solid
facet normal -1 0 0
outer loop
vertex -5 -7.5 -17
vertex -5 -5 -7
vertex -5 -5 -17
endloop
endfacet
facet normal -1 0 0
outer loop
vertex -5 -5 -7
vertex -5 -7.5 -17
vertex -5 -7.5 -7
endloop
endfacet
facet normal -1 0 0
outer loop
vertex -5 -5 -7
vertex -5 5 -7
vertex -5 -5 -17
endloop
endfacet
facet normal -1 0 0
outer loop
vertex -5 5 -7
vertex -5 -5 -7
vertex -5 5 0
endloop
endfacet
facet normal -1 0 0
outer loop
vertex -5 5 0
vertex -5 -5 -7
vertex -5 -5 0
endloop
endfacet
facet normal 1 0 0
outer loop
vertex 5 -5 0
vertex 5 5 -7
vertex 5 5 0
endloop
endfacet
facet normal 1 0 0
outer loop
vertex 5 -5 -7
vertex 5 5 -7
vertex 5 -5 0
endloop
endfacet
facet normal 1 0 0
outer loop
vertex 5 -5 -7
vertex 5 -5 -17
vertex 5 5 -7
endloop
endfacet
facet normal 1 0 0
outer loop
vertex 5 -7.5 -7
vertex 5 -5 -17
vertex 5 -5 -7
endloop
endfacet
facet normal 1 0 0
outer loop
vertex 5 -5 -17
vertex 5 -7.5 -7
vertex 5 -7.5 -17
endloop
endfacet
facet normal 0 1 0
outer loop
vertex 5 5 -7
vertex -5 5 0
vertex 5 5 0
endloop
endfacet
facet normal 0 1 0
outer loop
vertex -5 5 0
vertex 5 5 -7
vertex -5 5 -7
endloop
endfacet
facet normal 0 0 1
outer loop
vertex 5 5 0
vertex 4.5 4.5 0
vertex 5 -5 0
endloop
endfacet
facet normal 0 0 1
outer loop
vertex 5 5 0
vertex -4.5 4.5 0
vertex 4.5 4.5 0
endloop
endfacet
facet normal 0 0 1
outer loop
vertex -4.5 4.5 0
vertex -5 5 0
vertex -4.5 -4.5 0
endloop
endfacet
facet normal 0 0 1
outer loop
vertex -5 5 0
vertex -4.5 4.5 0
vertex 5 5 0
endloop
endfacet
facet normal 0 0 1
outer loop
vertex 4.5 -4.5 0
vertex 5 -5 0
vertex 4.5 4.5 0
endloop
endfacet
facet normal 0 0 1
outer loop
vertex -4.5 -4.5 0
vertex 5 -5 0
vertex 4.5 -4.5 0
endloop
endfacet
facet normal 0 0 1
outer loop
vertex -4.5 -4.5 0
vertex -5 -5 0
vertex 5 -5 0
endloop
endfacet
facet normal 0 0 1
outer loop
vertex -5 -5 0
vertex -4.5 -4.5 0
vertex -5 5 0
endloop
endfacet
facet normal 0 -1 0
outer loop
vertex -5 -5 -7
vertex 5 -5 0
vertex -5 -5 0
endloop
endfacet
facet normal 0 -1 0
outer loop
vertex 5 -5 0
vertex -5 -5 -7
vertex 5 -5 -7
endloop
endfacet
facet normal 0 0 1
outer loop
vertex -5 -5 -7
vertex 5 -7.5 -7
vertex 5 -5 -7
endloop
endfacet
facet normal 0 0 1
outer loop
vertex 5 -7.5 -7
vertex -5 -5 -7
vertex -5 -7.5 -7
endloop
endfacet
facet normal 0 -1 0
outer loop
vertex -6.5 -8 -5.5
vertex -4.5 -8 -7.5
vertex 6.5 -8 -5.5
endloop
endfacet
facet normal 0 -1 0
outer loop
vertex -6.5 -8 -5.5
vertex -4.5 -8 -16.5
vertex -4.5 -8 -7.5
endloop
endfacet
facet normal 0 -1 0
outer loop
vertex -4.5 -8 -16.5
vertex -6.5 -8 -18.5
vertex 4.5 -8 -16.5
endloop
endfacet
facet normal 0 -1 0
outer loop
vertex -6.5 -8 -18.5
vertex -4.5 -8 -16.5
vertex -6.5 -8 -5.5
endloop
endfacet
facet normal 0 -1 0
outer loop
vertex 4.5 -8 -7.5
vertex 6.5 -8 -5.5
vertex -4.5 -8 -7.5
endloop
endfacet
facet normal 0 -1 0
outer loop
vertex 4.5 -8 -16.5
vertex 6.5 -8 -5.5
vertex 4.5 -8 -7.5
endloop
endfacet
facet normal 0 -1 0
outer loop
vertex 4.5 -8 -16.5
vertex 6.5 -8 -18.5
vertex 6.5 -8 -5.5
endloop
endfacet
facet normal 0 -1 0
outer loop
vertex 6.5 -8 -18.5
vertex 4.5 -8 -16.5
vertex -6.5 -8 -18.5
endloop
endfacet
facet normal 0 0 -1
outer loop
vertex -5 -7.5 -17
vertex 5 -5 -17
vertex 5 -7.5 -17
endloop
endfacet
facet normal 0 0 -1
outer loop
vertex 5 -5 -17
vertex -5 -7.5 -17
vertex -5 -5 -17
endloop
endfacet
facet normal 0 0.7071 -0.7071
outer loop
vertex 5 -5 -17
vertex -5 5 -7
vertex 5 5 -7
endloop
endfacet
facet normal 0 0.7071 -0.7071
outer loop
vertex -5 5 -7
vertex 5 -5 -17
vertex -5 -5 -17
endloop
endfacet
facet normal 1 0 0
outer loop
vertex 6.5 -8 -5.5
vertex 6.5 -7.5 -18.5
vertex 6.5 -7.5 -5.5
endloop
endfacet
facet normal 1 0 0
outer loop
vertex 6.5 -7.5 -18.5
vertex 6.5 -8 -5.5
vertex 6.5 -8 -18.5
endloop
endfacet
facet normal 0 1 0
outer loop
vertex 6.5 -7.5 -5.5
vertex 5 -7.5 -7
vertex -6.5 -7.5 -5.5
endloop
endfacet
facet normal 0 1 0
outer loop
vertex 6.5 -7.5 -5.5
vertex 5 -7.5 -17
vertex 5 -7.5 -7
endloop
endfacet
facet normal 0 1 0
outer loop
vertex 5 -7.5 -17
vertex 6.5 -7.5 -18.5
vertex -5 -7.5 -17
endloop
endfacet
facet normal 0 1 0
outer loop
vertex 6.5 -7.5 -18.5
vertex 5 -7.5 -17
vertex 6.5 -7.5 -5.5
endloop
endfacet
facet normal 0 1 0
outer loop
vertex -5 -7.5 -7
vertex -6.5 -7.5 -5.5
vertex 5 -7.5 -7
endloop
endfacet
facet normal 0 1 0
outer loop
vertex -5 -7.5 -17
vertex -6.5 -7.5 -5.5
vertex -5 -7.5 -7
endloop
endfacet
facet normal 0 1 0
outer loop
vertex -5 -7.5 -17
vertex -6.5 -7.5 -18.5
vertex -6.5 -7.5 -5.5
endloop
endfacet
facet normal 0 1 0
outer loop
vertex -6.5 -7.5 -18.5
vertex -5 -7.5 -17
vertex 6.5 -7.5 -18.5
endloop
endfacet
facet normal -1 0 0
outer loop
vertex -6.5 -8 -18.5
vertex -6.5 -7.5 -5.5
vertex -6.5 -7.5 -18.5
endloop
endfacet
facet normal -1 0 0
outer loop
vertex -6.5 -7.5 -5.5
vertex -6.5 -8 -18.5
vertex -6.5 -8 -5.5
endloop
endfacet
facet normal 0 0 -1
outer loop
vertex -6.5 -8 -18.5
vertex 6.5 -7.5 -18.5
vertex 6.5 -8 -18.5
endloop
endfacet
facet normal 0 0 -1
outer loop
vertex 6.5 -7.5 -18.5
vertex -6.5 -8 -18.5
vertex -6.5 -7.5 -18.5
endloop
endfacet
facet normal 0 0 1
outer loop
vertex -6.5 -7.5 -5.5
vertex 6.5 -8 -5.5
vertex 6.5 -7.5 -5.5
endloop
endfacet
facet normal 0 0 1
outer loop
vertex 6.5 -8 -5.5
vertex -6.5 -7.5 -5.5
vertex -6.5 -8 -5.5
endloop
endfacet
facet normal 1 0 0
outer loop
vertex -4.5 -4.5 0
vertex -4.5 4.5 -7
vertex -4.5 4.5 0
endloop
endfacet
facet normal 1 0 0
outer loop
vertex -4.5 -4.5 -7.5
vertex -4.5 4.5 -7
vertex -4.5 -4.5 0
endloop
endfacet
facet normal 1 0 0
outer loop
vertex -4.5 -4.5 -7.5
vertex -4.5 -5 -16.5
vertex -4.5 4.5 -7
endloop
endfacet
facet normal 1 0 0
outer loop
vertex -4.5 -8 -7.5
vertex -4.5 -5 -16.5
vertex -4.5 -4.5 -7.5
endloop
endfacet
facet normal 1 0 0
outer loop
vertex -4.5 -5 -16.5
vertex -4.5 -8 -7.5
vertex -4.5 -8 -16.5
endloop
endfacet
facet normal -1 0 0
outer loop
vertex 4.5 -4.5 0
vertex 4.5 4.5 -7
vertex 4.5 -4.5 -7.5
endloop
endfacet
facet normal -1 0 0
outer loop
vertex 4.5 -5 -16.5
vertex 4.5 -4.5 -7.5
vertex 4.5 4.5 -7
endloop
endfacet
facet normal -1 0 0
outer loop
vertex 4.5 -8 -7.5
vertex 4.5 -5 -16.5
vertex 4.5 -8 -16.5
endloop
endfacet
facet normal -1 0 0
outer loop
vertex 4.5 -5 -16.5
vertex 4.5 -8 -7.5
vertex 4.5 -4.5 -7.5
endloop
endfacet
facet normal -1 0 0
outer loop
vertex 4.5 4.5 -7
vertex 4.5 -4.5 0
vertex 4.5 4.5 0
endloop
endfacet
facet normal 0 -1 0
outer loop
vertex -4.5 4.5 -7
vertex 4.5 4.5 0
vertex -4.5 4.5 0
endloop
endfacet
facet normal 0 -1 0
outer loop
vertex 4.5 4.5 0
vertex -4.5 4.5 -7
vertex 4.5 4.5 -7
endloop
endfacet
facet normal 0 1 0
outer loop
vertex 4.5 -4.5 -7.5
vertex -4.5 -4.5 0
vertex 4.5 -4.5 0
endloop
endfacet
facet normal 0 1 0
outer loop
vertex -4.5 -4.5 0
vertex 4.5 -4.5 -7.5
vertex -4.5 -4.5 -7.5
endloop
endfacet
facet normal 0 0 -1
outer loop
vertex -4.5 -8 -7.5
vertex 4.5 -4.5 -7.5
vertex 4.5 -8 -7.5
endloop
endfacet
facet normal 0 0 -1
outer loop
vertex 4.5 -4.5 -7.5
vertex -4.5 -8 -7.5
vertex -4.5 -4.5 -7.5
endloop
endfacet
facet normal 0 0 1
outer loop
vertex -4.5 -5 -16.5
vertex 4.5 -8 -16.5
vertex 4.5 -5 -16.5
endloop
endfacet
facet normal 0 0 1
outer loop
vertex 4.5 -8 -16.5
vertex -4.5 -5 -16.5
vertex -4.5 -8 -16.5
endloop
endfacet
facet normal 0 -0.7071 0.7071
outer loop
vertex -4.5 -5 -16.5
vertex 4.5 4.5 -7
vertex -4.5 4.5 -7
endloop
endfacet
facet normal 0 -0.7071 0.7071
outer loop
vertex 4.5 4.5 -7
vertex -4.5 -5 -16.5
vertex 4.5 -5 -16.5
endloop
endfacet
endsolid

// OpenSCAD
diameter=10;
horizontal_leg=3;
vertical_leg=7;
wall_thickness=0.5;
flange=3;

module half_periscope(
    d=diameter,
    h=horizontal_leg,
    v=vertical_leg,
    w=wall_thickness,
    f=flange   
) {

  translate([-d/2,-(h+d/2),-d-v])
    rotate([90,0,90])
        difference(){
            union() {
            linear_extrude(d)
                polygon([[0,0], [h,0], [d+h,d], [d+h,d+v],[h,d+v],[h,d],[0,d]]);
             translate([0,-f/2,-f/2])
                cube([w,d+f,d+f]);
            }
            translate([0,0,w])
                linear_extrude(d-w-w)
                    polygon([[-w,w], [h,w], [d+h-w,d], [d+h-w,d+v+w],[h+w,d+v+w],[h+w,d-w],[-w,d-w]]);
    }  
    
  
        
   
}

half_periscope();
